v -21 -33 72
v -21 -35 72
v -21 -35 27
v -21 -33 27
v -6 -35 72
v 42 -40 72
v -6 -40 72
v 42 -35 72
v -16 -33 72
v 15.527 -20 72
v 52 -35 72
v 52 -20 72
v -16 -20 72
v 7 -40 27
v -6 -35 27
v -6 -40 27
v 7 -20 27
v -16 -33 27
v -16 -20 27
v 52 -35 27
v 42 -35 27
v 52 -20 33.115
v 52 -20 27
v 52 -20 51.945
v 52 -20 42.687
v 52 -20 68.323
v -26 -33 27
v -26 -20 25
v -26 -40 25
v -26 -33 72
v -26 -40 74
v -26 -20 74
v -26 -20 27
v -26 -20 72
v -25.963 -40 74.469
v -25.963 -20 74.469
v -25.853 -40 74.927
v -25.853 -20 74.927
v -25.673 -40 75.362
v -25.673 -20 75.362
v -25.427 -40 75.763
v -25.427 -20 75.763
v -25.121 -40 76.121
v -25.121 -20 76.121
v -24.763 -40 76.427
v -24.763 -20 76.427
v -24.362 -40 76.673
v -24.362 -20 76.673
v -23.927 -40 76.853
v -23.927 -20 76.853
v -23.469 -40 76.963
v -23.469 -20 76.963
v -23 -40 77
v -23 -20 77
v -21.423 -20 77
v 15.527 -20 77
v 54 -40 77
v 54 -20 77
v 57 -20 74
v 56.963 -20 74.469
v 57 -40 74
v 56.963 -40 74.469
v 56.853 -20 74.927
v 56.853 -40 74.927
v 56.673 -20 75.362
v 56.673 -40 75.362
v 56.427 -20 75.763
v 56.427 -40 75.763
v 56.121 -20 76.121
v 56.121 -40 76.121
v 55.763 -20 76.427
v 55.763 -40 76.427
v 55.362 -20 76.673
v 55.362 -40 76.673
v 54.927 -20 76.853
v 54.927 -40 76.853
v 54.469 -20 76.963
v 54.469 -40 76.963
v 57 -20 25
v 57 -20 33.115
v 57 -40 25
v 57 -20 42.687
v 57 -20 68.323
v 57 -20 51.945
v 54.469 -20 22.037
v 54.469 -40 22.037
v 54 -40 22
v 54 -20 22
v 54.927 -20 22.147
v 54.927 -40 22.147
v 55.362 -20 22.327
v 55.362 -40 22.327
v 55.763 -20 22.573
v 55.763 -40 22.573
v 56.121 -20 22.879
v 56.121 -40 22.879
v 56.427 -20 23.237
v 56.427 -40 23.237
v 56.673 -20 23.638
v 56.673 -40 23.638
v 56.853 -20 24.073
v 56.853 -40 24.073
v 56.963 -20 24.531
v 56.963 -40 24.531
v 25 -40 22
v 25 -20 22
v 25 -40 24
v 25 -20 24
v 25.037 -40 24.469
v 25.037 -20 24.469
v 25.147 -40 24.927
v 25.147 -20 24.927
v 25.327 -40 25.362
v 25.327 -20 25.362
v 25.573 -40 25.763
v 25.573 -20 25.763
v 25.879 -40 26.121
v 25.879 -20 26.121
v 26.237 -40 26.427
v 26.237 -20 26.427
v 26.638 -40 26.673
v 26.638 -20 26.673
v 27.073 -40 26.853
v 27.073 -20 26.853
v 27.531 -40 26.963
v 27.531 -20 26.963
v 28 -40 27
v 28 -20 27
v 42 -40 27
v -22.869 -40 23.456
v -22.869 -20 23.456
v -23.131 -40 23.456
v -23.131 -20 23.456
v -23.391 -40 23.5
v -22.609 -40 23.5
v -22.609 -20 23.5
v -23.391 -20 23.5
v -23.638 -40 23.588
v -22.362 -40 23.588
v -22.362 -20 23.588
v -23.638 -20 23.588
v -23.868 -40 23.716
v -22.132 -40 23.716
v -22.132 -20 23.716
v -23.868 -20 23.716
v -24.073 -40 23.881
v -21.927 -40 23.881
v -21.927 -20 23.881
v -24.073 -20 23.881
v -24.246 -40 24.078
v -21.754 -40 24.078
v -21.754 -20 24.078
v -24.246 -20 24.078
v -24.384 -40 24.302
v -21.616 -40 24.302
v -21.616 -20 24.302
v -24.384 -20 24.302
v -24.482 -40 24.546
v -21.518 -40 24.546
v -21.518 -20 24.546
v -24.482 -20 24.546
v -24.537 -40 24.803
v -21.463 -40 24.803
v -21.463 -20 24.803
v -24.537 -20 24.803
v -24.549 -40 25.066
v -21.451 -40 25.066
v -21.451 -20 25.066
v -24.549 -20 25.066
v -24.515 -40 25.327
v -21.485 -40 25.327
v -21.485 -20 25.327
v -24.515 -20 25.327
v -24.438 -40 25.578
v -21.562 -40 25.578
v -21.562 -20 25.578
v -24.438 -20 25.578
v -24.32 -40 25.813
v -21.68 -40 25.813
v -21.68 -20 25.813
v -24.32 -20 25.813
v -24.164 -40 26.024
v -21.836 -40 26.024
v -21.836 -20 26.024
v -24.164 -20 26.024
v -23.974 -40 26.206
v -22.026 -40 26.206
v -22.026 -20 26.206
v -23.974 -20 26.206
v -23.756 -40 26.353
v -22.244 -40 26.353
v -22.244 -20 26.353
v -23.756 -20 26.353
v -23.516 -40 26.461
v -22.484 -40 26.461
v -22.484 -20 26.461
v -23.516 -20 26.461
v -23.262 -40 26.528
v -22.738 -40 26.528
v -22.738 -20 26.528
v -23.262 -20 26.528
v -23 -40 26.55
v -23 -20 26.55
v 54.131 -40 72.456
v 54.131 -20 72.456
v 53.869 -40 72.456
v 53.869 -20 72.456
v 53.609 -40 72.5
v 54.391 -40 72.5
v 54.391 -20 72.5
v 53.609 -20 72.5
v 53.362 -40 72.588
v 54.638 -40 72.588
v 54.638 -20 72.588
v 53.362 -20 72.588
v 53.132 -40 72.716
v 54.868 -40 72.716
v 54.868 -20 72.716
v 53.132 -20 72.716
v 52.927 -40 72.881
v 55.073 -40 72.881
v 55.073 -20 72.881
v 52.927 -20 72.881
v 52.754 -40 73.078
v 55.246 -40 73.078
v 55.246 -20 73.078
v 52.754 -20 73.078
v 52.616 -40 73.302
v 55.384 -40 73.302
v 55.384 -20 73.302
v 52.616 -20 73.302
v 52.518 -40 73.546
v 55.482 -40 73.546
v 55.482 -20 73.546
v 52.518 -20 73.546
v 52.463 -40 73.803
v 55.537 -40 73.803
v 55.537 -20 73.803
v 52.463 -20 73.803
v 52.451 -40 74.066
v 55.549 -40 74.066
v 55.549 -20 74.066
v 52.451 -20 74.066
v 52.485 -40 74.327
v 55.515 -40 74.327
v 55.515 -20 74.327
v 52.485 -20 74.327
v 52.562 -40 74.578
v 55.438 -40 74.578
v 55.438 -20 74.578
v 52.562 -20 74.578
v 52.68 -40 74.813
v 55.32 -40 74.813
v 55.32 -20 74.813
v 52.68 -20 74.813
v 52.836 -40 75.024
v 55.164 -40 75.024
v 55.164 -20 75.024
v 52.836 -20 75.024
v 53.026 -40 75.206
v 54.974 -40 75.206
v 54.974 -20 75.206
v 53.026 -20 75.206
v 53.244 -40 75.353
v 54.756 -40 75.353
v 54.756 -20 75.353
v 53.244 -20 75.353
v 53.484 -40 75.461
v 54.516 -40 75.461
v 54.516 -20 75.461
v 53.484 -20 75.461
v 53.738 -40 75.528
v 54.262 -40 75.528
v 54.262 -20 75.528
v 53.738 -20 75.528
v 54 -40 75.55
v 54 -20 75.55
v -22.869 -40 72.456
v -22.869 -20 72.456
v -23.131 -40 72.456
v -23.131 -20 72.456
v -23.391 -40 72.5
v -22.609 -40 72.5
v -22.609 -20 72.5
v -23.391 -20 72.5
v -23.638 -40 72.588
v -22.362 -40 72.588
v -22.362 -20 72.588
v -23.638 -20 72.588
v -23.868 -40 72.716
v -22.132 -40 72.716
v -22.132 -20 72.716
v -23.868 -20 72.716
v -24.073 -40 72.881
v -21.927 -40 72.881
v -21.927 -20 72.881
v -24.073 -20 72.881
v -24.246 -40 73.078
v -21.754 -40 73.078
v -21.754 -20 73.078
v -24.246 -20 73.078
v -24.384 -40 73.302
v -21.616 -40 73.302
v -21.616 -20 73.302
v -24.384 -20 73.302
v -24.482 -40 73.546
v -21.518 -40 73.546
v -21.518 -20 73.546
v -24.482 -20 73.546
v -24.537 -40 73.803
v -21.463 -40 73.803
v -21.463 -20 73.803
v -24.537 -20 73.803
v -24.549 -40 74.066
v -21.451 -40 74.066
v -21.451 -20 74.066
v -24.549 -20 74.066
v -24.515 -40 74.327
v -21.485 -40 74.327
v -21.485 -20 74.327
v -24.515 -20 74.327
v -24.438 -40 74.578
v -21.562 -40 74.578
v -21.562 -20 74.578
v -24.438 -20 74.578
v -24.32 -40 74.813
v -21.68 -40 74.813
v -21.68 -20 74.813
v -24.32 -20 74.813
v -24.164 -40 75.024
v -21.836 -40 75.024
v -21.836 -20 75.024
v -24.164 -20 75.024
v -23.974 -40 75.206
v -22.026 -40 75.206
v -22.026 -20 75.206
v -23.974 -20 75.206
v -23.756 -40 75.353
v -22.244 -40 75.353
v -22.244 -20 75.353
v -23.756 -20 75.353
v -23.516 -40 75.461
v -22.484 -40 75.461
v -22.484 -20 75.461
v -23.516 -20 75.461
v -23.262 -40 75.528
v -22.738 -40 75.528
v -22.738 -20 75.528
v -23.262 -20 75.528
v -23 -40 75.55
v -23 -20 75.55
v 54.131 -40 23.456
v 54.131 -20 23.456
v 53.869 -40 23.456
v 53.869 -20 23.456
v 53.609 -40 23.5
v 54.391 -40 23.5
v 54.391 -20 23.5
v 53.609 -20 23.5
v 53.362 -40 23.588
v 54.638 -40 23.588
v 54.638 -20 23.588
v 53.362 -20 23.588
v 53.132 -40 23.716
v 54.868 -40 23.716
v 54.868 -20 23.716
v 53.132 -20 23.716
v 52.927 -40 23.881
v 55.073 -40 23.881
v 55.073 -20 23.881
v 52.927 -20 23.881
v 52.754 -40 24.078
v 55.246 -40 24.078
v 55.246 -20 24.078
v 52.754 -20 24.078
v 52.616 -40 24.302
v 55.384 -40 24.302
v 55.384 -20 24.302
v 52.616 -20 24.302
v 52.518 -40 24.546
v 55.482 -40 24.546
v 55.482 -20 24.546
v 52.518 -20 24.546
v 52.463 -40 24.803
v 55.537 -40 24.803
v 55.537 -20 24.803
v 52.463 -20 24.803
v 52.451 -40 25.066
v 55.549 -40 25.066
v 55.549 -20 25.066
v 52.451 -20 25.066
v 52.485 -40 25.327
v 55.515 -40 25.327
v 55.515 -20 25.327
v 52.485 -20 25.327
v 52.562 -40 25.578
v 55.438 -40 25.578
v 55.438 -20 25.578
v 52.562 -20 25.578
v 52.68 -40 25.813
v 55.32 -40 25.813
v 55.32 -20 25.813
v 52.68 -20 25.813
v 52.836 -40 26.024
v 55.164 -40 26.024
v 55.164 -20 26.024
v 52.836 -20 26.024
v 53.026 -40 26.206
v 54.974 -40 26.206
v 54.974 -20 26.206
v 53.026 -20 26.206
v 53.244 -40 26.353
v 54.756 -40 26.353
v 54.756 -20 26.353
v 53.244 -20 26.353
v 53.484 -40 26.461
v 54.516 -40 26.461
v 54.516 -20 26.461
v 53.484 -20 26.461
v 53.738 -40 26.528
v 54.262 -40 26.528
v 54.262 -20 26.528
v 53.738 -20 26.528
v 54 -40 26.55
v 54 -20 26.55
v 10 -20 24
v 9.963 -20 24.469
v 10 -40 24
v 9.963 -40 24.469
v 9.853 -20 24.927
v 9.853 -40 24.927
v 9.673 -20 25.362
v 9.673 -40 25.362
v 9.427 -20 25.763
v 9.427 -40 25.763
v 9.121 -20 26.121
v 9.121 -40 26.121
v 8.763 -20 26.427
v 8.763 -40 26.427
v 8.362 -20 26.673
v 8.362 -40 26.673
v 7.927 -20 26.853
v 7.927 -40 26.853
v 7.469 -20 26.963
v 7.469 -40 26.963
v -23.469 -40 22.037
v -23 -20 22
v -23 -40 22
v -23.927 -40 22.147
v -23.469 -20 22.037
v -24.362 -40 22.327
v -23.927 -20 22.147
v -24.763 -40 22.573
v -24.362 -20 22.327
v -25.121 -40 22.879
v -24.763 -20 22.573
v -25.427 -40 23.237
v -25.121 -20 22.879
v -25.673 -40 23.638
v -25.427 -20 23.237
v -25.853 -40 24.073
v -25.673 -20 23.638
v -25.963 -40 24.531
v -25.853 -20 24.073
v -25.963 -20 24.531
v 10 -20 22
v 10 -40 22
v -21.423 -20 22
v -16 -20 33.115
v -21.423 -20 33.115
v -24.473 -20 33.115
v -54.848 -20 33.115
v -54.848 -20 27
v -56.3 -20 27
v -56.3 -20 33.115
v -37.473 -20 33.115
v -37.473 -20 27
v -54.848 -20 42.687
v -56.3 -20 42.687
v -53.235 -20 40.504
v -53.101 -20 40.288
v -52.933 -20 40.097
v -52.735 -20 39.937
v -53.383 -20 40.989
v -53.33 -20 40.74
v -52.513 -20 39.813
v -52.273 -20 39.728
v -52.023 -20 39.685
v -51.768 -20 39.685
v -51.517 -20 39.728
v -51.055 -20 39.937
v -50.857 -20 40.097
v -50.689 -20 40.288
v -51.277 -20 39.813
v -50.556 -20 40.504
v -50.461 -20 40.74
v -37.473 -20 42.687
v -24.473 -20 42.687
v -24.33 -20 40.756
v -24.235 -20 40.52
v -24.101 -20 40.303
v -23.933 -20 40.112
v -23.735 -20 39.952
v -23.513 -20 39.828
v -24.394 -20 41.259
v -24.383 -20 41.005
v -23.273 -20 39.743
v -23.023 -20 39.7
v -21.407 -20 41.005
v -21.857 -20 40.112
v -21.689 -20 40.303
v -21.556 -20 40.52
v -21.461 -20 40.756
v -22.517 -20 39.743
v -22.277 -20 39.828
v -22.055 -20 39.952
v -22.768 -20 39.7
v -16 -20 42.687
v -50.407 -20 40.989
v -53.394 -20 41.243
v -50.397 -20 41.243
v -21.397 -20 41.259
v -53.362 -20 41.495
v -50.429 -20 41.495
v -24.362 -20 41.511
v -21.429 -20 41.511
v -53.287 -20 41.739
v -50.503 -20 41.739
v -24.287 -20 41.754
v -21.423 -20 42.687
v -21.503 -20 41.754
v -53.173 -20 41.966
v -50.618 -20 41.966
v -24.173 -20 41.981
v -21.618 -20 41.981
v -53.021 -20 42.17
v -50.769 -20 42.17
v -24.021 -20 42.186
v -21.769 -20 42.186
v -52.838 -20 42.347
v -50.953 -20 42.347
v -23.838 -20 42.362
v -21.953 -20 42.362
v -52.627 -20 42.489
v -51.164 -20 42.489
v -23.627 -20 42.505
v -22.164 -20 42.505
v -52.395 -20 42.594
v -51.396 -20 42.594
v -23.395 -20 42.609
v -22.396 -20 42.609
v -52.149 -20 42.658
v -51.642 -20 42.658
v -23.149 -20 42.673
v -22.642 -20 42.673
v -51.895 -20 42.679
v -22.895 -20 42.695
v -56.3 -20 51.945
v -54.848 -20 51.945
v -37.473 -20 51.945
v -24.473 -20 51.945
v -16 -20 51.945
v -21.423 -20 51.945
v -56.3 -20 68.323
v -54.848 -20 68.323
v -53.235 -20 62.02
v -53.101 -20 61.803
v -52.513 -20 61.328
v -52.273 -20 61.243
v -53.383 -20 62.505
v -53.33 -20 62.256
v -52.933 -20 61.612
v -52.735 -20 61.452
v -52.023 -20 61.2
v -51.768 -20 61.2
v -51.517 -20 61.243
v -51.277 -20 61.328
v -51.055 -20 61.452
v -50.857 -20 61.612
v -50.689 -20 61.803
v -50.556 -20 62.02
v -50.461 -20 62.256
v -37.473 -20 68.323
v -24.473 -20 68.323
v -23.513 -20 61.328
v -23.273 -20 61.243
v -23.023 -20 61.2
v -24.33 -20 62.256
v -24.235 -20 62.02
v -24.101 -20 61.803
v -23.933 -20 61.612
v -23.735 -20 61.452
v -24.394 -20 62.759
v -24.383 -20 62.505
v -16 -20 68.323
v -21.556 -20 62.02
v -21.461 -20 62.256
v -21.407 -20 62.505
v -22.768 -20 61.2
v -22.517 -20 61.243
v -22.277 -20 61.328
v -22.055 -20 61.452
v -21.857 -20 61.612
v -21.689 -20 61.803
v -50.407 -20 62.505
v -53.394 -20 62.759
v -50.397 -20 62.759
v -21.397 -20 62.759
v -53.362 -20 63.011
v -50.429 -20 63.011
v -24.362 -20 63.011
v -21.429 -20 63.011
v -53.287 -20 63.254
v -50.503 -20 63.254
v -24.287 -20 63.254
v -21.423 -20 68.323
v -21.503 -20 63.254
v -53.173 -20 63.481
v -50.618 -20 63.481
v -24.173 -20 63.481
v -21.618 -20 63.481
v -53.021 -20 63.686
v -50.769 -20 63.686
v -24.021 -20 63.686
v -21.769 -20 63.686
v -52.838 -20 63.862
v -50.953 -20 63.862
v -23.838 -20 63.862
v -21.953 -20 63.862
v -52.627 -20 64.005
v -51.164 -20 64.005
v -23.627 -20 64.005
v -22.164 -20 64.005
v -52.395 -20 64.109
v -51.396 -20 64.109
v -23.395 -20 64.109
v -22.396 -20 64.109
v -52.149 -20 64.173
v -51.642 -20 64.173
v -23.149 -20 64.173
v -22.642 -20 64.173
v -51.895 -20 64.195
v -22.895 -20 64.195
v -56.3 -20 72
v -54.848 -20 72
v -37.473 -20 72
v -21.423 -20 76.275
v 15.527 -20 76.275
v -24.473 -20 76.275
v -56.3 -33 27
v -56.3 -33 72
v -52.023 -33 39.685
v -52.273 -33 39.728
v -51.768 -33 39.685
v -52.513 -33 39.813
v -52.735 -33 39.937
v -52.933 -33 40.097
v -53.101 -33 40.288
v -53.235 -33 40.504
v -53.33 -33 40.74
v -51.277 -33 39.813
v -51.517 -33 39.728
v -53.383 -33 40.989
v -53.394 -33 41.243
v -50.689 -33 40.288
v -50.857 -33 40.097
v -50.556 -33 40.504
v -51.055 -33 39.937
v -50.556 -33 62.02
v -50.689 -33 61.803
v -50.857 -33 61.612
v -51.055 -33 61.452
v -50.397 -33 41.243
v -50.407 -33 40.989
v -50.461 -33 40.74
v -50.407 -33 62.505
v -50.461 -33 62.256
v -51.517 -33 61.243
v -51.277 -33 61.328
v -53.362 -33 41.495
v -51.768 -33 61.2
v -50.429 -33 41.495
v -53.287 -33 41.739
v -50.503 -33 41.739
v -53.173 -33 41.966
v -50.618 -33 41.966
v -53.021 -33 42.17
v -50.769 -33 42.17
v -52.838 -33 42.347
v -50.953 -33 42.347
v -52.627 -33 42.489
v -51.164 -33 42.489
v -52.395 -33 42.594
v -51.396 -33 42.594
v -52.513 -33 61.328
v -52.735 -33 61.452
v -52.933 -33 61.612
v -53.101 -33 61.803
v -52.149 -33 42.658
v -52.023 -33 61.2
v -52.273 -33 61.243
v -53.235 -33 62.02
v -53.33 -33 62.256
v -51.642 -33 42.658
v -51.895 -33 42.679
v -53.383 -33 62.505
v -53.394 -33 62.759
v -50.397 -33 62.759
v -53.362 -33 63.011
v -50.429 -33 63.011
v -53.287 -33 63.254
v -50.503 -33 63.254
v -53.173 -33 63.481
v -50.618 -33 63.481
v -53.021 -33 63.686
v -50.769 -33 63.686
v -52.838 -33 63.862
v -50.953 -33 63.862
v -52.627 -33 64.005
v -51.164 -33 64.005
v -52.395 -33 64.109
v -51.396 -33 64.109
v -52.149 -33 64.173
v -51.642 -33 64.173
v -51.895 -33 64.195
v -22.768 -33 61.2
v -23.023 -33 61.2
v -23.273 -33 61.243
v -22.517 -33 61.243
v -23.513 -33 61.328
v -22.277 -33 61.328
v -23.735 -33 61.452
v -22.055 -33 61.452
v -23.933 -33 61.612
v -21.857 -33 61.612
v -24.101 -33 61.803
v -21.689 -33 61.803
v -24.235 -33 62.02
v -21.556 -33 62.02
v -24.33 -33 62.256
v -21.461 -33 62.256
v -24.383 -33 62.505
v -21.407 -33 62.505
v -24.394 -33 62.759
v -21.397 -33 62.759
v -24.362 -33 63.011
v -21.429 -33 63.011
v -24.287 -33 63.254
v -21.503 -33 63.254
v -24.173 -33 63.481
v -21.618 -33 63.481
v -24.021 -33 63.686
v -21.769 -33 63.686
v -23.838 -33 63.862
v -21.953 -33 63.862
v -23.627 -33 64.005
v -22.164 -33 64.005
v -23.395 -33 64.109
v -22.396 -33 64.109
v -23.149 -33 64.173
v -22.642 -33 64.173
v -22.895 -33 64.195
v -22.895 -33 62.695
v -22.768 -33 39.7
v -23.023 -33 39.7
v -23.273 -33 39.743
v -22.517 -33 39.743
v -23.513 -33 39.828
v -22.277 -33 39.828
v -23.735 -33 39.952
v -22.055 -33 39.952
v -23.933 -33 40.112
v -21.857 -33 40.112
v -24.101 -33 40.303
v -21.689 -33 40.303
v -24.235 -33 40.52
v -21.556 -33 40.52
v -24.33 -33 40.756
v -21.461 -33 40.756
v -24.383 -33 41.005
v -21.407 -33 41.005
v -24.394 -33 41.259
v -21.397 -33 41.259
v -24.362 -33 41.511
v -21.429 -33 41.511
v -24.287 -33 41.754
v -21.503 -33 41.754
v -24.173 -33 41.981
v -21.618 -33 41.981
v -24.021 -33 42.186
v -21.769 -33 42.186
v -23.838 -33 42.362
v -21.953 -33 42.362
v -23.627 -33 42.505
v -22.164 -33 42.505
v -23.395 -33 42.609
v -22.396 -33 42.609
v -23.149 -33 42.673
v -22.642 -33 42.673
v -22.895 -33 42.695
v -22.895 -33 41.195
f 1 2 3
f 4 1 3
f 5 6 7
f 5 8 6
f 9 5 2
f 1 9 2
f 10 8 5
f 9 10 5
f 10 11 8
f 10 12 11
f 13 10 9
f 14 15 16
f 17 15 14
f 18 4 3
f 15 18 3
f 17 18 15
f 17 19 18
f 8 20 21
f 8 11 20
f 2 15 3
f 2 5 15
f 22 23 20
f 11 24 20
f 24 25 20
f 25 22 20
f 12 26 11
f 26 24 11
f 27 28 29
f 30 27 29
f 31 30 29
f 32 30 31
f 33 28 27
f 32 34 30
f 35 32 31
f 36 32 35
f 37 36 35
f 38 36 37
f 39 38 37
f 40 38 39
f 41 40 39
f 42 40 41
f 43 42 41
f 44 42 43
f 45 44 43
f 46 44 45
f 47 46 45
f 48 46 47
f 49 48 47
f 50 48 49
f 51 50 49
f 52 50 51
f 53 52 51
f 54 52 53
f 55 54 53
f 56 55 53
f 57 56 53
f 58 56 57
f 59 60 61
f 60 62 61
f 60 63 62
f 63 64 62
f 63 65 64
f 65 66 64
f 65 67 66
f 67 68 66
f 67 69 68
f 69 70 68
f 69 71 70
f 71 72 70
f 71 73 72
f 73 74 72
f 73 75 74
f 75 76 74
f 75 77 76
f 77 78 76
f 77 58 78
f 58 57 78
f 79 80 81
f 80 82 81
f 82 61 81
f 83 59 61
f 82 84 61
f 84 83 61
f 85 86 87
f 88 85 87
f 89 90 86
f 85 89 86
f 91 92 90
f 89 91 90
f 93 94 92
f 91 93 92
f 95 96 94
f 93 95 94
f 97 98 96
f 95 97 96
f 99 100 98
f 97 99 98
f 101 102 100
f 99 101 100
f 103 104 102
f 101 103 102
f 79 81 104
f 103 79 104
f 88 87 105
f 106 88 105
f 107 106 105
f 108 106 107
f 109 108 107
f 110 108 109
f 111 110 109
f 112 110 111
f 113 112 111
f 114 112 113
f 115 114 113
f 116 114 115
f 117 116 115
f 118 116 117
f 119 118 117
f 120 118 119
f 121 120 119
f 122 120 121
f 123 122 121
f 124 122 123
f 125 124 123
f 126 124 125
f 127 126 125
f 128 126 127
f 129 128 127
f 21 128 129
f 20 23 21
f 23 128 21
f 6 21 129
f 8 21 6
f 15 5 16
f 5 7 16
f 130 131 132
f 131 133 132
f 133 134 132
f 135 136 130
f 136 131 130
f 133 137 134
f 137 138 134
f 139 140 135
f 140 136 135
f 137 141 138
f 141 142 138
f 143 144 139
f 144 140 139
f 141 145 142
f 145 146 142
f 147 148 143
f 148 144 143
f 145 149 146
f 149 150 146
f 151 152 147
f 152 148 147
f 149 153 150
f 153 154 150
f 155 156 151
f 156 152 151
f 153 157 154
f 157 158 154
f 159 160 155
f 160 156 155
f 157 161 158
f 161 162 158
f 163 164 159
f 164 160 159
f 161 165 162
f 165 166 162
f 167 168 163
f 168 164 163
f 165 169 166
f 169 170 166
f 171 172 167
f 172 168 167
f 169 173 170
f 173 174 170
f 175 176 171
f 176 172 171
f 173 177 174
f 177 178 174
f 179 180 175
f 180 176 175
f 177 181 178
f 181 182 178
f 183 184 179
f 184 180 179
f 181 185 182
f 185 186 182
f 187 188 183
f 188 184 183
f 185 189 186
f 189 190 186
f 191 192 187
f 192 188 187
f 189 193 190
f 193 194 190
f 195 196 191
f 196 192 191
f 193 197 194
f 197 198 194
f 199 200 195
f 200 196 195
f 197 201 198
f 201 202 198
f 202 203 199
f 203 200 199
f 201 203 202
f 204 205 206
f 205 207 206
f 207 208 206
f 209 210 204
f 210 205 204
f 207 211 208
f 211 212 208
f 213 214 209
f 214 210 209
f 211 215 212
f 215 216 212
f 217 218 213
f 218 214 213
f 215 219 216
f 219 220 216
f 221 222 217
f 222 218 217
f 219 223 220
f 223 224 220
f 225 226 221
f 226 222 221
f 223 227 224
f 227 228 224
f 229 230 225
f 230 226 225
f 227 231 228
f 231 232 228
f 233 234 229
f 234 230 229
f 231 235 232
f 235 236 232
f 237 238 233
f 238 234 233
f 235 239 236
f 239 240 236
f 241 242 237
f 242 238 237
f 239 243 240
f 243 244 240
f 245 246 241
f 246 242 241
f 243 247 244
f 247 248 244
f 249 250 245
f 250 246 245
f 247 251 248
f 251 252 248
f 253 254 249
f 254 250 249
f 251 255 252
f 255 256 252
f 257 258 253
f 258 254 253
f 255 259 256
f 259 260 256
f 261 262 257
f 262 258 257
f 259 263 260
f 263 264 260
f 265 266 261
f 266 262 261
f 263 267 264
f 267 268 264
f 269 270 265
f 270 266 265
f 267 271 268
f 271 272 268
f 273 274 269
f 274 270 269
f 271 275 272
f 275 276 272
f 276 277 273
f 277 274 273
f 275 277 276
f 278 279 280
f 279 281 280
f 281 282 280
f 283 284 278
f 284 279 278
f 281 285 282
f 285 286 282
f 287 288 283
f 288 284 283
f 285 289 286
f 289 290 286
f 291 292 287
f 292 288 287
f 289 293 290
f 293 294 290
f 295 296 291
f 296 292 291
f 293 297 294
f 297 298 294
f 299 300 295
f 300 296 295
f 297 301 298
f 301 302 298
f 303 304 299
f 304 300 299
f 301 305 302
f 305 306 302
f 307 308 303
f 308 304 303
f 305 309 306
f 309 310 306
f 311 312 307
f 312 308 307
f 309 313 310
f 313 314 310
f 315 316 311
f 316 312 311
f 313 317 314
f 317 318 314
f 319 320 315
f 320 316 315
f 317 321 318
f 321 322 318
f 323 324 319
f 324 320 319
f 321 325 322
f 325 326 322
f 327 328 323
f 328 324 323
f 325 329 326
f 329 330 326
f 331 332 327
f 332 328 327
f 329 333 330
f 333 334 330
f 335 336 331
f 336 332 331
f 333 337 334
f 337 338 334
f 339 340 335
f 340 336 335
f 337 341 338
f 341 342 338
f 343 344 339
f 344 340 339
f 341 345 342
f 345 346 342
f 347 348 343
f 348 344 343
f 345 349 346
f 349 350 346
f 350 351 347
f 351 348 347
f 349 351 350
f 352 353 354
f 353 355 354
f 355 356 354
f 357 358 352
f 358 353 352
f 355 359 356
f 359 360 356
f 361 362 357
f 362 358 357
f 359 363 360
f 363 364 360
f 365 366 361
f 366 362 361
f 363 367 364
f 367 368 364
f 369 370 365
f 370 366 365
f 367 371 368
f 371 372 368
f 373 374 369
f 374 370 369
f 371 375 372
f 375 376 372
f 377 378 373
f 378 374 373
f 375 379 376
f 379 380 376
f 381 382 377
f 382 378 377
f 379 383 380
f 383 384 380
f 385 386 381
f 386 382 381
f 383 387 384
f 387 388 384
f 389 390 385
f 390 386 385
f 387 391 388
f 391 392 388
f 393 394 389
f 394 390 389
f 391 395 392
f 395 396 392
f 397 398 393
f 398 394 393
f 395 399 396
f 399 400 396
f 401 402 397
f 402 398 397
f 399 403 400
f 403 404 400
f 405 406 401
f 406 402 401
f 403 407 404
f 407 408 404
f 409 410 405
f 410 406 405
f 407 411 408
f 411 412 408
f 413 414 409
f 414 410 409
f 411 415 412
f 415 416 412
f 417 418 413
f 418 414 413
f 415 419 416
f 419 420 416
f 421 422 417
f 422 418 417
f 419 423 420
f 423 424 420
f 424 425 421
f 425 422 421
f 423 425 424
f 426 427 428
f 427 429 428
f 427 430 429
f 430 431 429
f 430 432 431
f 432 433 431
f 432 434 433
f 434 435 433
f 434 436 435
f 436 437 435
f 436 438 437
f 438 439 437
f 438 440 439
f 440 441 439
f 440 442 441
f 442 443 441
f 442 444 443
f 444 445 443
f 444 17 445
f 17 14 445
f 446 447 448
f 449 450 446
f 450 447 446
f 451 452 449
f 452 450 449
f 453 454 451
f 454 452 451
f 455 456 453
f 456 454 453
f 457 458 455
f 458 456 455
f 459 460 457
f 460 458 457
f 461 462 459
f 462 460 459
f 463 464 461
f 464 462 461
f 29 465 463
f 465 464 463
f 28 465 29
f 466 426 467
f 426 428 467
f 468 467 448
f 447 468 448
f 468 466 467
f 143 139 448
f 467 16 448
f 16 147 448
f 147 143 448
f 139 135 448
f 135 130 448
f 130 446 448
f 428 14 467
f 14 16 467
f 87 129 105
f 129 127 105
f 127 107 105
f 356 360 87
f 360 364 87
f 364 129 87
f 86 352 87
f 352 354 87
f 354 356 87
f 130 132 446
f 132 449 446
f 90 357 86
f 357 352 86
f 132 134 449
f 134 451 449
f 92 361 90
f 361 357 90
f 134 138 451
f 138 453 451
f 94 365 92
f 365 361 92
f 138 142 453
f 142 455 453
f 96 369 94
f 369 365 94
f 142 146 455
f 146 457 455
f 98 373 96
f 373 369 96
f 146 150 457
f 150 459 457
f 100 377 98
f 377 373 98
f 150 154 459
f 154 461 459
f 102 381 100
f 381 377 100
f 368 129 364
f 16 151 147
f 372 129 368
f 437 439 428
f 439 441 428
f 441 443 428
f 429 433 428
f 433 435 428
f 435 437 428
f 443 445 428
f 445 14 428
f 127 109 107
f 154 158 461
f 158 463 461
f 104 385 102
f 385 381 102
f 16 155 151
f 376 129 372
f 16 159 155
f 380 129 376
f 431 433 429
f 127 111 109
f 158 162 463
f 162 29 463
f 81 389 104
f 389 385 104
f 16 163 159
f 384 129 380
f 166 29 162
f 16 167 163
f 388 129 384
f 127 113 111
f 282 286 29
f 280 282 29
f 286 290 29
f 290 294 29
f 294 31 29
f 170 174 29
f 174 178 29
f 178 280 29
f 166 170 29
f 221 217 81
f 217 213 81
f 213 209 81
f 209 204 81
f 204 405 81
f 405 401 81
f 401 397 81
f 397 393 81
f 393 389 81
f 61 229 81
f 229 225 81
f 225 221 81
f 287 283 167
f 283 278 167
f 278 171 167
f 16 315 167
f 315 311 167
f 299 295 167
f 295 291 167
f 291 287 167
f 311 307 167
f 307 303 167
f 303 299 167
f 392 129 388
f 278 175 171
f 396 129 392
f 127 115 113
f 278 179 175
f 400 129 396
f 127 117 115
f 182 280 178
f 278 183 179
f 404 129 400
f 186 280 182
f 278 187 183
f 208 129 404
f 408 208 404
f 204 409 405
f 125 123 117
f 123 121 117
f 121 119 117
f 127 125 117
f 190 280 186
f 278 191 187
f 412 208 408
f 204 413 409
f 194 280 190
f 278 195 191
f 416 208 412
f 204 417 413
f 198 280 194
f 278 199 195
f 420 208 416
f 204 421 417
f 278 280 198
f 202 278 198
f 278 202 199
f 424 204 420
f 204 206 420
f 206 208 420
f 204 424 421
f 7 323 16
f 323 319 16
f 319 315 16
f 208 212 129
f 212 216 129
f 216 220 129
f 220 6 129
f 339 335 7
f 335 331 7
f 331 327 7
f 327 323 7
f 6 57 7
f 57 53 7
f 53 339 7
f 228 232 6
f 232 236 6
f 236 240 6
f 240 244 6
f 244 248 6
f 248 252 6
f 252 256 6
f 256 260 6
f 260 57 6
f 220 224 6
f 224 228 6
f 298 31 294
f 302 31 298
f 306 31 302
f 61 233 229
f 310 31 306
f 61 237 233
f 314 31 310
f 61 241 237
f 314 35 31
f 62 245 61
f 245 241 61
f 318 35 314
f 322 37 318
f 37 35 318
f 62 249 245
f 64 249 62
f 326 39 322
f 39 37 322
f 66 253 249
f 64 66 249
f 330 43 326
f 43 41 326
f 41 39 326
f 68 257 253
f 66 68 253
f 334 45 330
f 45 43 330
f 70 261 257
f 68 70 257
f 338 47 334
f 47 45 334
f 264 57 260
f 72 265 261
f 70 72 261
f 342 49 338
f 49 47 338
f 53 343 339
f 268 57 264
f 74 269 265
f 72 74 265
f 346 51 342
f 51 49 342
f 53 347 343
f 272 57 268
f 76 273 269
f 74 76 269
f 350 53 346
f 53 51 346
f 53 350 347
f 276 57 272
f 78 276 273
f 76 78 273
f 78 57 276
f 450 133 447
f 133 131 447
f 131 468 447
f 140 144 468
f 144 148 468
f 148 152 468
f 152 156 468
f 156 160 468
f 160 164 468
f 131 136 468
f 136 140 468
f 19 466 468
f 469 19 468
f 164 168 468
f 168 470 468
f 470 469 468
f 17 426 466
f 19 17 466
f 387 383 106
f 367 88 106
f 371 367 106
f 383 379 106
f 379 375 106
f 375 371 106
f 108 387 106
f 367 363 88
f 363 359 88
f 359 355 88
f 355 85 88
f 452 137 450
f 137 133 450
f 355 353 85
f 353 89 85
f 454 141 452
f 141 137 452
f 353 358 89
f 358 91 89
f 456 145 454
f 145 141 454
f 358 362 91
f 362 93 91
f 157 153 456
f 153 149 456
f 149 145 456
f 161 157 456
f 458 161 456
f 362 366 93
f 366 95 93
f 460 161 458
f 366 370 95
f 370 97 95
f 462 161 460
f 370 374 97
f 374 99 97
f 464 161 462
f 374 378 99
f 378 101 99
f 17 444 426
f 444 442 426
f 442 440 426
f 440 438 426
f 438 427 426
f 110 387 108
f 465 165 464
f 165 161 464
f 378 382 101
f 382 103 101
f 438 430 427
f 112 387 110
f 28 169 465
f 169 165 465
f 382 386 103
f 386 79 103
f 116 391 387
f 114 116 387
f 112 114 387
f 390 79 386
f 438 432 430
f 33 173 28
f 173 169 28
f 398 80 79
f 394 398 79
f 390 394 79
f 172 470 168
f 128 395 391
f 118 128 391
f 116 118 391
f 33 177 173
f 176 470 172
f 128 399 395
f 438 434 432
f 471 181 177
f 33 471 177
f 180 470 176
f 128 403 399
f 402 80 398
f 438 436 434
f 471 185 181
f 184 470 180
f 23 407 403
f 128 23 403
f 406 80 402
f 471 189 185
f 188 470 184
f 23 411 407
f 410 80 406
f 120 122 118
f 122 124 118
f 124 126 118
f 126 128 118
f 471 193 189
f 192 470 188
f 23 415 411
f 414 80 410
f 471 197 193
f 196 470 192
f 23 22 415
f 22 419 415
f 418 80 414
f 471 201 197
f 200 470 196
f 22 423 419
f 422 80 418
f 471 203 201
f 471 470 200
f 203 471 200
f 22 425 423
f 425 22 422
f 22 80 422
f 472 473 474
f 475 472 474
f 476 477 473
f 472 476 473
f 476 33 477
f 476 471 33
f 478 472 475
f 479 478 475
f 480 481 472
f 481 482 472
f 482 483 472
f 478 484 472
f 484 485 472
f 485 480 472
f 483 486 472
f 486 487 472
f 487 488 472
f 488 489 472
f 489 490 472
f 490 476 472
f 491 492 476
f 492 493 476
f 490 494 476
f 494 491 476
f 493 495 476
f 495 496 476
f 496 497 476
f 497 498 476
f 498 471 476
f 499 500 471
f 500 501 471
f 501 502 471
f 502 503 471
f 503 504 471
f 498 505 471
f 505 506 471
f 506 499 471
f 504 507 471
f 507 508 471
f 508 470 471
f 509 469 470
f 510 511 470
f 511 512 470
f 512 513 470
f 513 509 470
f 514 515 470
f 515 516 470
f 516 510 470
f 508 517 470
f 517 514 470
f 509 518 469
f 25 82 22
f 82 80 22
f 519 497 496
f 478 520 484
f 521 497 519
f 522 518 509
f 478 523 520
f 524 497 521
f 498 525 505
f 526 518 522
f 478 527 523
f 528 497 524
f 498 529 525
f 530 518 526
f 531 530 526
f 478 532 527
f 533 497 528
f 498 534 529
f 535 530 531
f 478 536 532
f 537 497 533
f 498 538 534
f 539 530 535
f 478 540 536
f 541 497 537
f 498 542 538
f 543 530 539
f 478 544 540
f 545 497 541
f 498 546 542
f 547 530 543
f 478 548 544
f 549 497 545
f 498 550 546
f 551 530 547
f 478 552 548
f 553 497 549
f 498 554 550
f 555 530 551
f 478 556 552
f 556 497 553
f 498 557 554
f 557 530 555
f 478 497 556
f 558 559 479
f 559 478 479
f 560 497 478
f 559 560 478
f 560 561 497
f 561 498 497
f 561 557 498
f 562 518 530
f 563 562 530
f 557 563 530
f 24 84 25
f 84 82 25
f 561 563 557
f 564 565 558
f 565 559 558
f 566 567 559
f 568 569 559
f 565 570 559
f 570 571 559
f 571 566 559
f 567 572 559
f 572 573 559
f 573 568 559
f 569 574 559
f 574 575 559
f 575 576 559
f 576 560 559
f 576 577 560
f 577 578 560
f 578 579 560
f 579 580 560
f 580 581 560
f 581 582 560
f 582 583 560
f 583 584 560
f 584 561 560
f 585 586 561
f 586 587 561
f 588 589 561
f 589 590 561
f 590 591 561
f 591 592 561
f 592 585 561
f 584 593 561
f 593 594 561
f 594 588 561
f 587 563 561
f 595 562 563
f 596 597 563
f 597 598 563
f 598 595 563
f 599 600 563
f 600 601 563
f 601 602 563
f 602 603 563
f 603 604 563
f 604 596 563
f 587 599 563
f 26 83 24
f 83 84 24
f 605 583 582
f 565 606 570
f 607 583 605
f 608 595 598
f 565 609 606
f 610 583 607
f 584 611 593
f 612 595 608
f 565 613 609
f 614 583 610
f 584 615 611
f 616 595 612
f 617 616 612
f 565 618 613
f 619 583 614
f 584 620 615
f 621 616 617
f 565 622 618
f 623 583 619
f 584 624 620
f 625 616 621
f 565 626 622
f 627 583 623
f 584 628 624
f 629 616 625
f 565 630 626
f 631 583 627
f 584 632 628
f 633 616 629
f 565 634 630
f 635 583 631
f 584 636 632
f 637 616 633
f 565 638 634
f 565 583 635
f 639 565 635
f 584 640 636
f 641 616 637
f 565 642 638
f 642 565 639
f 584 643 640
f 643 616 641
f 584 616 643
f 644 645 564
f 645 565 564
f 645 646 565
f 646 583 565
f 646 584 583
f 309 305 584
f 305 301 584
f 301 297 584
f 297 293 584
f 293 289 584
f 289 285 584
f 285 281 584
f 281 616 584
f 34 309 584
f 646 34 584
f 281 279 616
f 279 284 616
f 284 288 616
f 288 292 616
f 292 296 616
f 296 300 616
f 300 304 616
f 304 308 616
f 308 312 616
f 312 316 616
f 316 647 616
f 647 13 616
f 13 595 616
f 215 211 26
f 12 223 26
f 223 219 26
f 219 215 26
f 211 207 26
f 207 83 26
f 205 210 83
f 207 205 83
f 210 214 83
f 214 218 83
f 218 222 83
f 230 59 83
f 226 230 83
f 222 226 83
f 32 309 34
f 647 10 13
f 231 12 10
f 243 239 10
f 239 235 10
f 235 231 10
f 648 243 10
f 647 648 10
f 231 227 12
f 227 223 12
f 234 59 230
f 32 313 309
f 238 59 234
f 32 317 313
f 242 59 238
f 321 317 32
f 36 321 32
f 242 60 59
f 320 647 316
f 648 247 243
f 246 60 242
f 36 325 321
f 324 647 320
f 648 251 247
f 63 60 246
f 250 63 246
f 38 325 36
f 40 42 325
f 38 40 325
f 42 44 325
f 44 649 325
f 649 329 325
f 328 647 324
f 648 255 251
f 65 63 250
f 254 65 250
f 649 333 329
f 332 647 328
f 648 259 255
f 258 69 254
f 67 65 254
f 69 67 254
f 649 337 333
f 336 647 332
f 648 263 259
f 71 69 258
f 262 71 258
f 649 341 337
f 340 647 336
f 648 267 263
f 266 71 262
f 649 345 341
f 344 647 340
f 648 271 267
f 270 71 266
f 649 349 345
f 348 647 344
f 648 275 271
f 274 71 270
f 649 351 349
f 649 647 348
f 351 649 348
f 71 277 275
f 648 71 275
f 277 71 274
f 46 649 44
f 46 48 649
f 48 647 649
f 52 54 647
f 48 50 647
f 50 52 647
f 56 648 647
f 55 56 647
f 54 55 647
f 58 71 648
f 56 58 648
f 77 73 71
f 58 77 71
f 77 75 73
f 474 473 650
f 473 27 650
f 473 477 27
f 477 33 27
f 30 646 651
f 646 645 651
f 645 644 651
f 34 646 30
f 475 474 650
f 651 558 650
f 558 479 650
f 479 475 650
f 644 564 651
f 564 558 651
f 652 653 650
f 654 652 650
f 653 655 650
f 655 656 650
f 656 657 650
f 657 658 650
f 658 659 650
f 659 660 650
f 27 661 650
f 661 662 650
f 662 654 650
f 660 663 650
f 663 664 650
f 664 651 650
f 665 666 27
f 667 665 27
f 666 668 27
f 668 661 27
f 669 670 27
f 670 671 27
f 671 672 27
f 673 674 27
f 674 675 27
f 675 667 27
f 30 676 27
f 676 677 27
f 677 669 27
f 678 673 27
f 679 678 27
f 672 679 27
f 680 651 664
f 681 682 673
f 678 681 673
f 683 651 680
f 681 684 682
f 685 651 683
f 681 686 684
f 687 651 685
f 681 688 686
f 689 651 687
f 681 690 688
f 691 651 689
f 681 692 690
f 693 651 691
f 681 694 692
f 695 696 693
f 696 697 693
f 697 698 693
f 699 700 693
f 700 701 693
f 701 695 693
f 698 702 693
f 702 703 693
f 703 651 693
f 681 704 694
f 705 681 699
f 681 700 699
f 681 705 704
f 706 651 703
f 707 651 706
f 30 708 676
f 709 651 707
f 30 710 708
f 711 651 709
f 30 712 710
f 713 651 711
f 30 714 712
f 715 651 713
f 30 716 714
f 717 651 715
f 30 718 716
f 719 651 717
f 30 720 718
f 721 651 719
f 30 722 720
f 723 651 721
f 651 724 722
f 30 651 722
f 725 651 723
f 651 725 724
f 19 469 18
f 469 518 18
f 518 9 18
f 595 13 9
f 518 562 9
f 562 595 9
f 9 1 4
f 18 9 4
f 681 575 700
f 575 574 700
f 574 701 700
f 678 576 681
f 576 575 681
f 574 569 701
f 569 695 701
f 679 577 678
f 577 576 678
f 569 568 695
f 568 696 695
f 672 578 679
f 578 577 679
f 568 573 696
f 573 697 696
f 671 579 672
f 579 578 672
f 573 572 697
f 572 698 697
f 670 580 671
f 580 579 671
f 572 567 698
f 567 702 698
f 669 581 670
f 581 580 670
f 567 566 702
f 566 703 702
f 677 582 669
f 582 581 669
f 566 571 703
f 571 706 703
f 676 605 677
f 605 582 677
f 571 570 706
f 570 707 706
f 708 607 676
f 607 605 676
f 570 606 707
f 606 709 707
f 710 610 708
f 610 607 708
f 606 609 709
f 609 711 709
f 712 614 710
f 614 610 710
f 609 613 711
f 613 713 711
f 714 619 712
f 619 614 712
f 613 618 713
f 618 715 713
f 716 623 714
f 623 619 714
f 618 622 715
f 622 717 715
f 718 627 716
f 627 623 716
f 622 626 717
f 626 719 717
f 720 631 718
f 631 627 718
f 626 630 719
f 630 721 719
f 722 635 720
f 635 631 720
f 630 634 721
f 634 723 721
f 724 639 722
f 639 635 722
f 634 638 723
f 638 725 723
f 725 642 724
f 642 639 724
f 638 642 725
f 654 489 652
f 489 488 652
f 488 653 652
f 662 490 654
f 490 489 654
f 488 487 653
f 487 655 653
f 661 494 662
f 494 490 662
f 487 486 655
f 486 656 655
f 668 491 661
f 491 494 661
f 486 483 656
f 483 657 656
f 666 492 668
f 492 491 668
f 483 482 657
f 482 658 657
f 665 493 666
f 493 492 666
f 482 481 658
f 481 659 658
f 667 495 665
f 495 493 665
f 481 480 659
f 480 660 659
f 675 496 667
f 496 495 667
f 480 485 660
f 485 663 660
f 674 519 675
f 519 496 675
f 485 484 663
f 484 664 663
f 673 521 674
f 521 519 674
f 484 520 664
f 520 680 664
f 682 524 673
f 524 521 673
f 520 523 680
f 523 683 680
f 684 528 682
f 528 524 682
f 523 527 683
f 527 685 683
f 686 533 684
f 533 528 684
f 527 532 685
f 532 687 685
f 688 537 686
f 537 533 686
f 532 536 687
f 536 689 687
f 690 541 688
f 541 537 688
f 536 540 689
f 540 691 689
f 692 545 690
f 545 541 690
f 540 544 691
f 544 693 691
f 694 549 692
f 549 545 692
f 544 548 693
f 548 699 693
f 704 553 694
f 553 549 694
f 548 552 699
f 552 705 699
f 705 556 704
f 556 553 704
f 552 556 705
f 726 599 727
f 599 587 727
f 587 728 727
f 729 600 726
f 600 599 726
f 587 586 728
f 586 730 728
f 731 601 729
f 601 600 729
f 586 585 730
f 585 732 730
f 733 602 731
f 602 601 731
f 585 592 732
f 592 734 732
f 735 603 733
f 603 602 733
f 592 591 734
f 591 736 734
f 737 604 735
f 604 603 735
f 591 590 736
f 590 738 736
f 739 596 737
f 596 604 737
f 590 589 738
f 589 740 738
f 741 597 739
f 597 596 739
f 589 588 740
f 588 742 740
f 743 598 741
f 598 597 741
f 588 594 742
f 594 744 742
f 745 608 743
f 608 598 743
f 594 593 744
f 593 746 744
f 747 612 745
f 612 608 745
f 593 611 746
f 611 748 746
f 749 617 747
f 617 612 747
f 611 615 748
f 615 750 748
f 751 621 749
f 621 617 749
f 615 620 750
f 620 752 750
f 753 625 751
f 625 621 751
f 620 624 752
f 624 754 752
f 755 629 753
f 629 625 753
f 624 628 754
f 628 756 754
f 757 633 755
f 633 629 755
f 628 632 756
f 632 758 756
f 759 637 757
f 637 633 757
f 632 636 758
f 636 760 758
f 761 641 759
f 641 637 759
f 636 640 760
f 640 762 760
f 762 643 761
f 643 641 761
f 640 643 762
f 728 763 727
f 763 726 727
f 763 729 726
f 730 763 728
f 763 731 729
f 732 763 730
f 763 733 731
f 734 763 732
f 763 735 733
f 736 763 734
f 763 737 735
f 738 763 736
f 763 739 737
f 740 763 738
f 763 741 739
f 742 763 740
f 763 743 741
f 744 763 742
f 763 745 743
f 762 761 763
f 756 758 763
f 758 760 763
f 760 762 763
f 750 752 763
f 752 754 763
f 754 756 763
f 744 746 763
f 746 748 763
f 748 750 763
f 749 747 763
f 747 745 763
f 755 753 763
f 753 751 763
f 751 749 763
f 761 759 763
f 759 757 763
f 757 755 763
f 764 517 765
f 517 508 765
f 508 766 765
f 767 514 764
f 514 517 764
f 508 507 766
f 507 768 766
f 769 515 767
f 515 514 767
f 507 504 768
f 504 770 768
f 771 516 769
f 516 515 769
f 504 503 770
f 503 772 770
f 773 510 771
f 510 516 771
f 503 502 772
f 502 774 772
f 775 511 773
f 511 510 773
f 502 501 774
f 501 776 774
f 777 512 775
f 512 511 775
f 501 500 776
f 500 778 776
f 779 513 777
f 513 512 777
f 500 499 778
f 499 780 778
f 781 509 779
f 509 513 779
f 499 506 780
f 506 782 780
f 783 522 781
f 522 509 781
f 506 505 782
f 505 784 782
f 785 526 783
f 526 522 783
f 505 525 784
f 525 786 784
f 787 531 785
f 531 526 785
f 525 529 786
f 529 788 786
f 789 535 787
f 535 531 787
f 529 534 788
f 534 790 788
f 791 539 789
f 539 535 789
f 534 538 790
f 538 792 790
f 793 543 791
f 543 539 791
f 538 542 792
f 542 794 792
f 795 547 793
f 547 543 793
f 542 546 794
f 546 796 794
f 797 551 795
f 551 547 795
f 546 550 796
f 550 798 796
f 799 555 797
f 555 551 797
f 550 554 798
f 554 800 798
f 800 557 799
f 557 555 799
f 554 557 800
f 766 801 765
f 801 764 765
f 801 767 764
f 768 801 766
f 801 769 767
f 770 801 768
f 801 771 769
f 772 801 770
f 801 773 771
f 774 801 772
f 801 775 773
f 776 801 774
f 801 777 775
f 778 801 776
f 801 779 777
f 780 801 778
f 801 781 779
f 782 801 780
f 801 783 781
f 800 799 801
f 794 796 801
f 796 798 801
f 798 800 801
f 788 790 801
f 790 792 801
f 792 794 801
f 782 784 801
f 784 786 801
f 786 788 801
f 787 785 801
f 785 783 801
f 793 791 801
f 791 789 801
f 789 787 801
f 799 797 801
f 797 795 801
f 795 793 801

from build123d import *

# Parameters (mm, degrees)
EXTRUDE_1_DEPTH             = 10
EXTRUDE_2_REACH             = 34.619
SKETCH_2_R                  = 10
EXTRUDE_2_DIRECTION_2_DEPTH = 2
SKETCH_6_R                  = 1.65
SKETCH_6_W                  = 14.704506527
SKETCH_6_H                  = 8.520368268
CUT_EXTRUDE_2_DEPTH         = 43.983979574
FILLET_1_R                  = 1
FILLET_2_R                  = 0.5
EXTRUDE_3_DEPTH             = 8
EXTRUDE_4_DEPTH             = 55
SKETCH_9_W                  = 73
SKETCH_9_H                  = 45
CUT_EXTRUDE_3_DEPTH         = 13
SKETCH_10_W                 = 15
SKETCH_10_H                 = 20
CUT_EXTRUDE_4_DEPTH         = 13
SKETCH_11_W                 = 73
SKETCH_11_H                 = 45
CUT_EXTRUDE_6_DEPTH         = 13
SKETCH_12_W                 = 15
SKETCH_12_H                 = 45
SKETCH_12_W_2               = 10
EXTRUDE_5_DEPTH             = 5
FILLET_3_R                  = 3
SKETCH_14_R                 = 1.55
CUT_EXTRUDE_7_DEPTH         = 102.004950374
SKETCH_15_W                 = 8
SKETCH_15_H                 = 22
CUT_EXTRUDE_8_DEPTH         = 20
SKETCH_18_W                 = 5
SKETCH_18_H                 = 45
SKETCH_18_W_2               = 30.3
EXTRUDE_6_DEPTH             = 13
SKETCH_20_R                 = 1.5
CUT_EXTRUDE_9_DEPTH         = 13


with BuildPart() as part:
    # 草图1 → 凸台-拉伸1 (new, symmetric)
    with BuildSketch(Plane.XY):
        with BuildLine():
            Line((-1.15, 3.987480407), (-1.15, 12))
            Line((-1.15, 12), (-4.15, 12))
            Line((-4.15, 12), (-4.15, 4.333301282))
            ThreePointArc((-4.15, 4.333301282), (-4.784308974, 3.620826928), (-5.297685557, 2.816829377))
            Line((-5.297685557, 2.816829377), (-8, -2.265484914))
            Line((-8, -2.265484914), (-8, -30))
            Line((-8, -30), (0, -30))
            Line((0, -30), (0, -8.485281374))
            Line((0, -8.485281374), (4.242640687, -4.242640687))
            ThreePointArc((4.242640687, -4.242640687), (5.999649956, 0.064810571), (4.15, 4.333301282))
            Line((4.15, 4.333301282), (4.15, 12))
            Line((4.15, 12), (1.15, 12))
            Line((1.15, 12), (1.15, 3.987480407))
            ThreePointArc((1.15, 3.987480407), (0, -4.15), (-1.15, 3.987480407))
        make_face()
    extrude(amount=EXTRUDE_1_DEPTH, both=True)

    # 凸台-拉伸2: up to this face of the body (flat: up to its plane)
    extrude_2_end = Plane(part.part.faces().sort_by_distance((-8, -16.132742457, 0))[0])
    # 草图2 → 凸台-拉伸2 (add, up to the picked face)
    with BuildSketch(Plane(origin=(0, 0, 0), x_dir=(0, 0, -1), z_dir=(1, 0, 0)), mode=Mode.PRIVATE) as extrude_2_sk1:
        with Locations((0, -30)):
            Circle(SKETCH_2_R)
    extrude_2_tool1 = split(extrude(extrude_2_sk1.sketch, amount=-EXTRUDE_2_REACH, mode=Mode.PRIVATE), bisect_by=extrude_2_end, keep=Keep.BOTH, mode=Mode.PRIVATE)
    add(extrude_2_tool1.solids().sort_by(Axis((0, -30, 0), (-1, 0, 0)))[0])

    # 草图2 → 凸台-拉伸2 direction 2 (add)
    with BuildSketch(Plane(origin=(0, 0, 0), x_dir=(0, 0, -1), z_dir=(1, 0, 0))):
        with Locations((0, -30)):
            Circle(SKETCH_2_R)
    extrude(amount=EXTRUDE_2_DIRECTION_2_DEPTH)

    # 草图6 → 切除-拉伸2 (cut, through all)
    with BuildSketch(Plane(origin=(4.15, 0, 0), x_dir=(0, 0, -1), z_dir=(1, 0, 0))):
        with Locations(Location((0, 9.5, 0), (0, 0, 90))):
            Circle(SKETCH_6_R)
        with Locations((-12.852253263, 11.760184134)):
            Rectangle(SKETCH_6_W, SKETCH_6_H)
        with Locations((12.852253263, 11.760184134)):
            Rectangle(SKETCH_6_W, SKETCH_6_H)
    extrude(amount=-CUT_EXTRUDE_2_DEPTH, mode=Mode.SUBTRACT)

    # 圆角1
    fillet_1_edges = [part.edges().sort_by_distance(p)[0] for p in [
        (2.65, 7.5, -10),
        (-2.65, 7.5, -10),
        (2.65, 7.5, 10),
        (-2.65, 7.5, 10),
        (2.65, 12, 5.5),
        (-2.65, 12, 5.5),
        (2.65, 12, -5.5),
        (-2.65, 12, -5.5),
    ]]
    fillet(fillet_1_edges, radius=FILLET_1_R)

    # 圆角2
    fillet_2_edges = [part.edges().sort_by_distance(p)[0] for p in [
        (-2.65, 7.5, 5.5),
        (2.65, 7.5, 5.5),
        (2.65, 7.5, -5.5),
        (-2.65, 7.5, -5.5),
    ]]
    fillet(fillet_2_edges, radius=FILLET_2_R)

    # 草图7 → 凸台-拉伸3 (add)
    with BuildSketch(Plane(origin=(2, 0, 0), x_dir=(0, 0, -1), z_dir=(1, 0, 0))):
        with BuildLine():
            Line((0, -20), (-22, -20))
            Line((-22, -20), (-22, -40))
            Line((-22, -40), (0, -40))
            ThreePointArc((0, -40), (10, -30), (0, -20))
        make_face()
    extrude(amount=EXTRUDE_3_DEPTH)

    # 草图8 → 凸台-拉伸4 (add)
    with BuildSketch(Plane.XY.offset(22)):
        Polygon((10, -20), (-26, -20), (-26, -40), (2, -40), (57, -40), (57, -20), align=None)
    extrude(amount=EXTRUDE_4_DEPTH)

    # 草图9 → 切除-拉伸3 (cut)
    with BuildSketch(Plane(origin=(0, -20, 0), x_dir=(1, 0, 0), z_dir=(0, 1, 0))):
        with Locations((15.5, -49.5)):
            Rectangle(SKETCH_9_W, SKETCH_9_H)
    extrude(amount=-CUT_EXTRUDE_3_DEPTH, mode=Mode.SUBTRACT)

    # 草图10 → 切除-拉伸4 (cut)
    with BuildSketch(Plane(origin=(0, 0, 22), x_dir=(-1, 0, 0), z_dir=(0, 0, -1))):
        with Locations((-17.5, -30)):
            Rectangle(SKETCH_10_W, SKETCH_10_H)
    extrude(amount=-CUT_EXTRUDE_4_DEPTH, mode=Mode.SUBTRACT)

    # 草图11 → 切除-拉伸6 (cut)
    with BuildSketch(Plane(origin=(0, -33, 0), x_dir=(1, 0, 0), z_dir=(0, 1, 0))):
        with Locations((15.5, -49.5)):
            Rectangle(SKETCH_11_W, SKETCH_11_H)
    extrude(amount=-CUT_EXTRUDE_6_DEPTH, mode=Mode.SUBTRACT)

    # 草图12 → 凸台-拉伸5 (add)
    with BuildSketch(Plane.XZ.offset(40)):
        with Locations((-13.5, 49.5)):
            Rectangle(SKETCH_12_W, SKETCH_12_H)
        with Locations((47, 49.5)):
            Rectangle(SKETCH_12_W_2, SKETCH_12_H)
    extrude(amount=-EXTRUDE_5_DEPTH)

    # 圆角3
    fillet_3_edges = [part.edges().sort_by_distance(p)[0] for p in [
        (-26, -30, 22),
        (57, -30, 22),
        (-26, -30, 77),
        (57, -30, 77),
        (10, -30, 27),
        (25, -30, 27),
    ]]
    fillet(fillet_3_edges, radius=FILLET_3_R)

    # 草图14 → 切除-拉伸7 (cut, through all)
    with BuildSketch(Plane(origin=(0, -20, 0), x_dir=(1, 0, 0), z_dir=(0, 1, 0))):
        with Locations(Location((-23, -25, 0), (0, 0, 270))):
            Circle(SKETCH_14_R)
        with Locations(Location((54, -25, 0), (0, 0, 270))):
            Circle(SKETCH_14_R)
        with Locations(Location((-23, -74, 0), (0, 0, 270))):
            Circle(SKETCH_14_R)
        with Locations(Location((54, -74, 0), (0, 0, 270))):
            Circle(SKETCH_14_R)
    extrude(amount=-CUT_EXTRUDE_7_DEPTH, mode=Mode.SUBTRACT)

    # 草图15 → 切除-拉伸8 (cut)
    with BuildSketch(Plane(origin=(0, -20, 0), x_dir=(1, 0, 0), z_dir=(0, 1, 0))):
        with Locations((6, -11)):
            Rectangle(SKETCH_15_W, SKETCH_15_H)
    extrude(amount=-CUT_EXTRUDE_8_DEPTH, mode=Mode.SUBTRACT)


with BuildPart() as body_2:
    # of the pieces the cut leaves, the one that is kept (cut_extrude_8_keep)
    add(part.part.solids().sort_by_distance((-26, -20, 25))[0])

    # 草图18 → 凸台-拉伸6 (add)
    with BuildSketch(Plane(origin=(0, -20, 0), x_dir=(1, 0, 0), z_dir=(0, 1, 0))):
        with Locations((-18.5, -49.5)):
            Rectangle(SKETCH_18_W, SKETCH_18_H)
        with Locations((-41.15, -49.5)):
            Rectangle(SKETCH_18_W_2, SKETCH_18_H)
    extrude(amount=-EXTRUDE_6_DEPTH)

    # 草图20 → 切除-拉伸9 (cut)
    with BuildSketch(Plane(origin=(0, -20, 0), x_dir=(1, 0, 0), z_dir=(0, 1, 0))):
        with Locations(Location((-22.89532608, -62.69503523, 0), (0, 0, 270))):
            Circle(SKETCH_20_R)
        with Locations(Location((-51.895321909, -41.179481559, 0), (0, 0, 270))):
            Circle(SKETCH_20_R)
        with Locations((-21.949220364, 0)):
            Circle(SKETCH_20_R)
        with Locations(Location((-51.895321909, -62.69503523, 0), (0, 0, 270))):
            Circle(SKETCH_20_R)
        with Locations(Location((-22.89532608, -41.19503523, 0), (0, 0, 270))):
            Circle(SKETCH_20_R)
    extrude(amount=-CUT_EXTRUDE_9_DEPTH, mode=Mode.SUBTRACT)


solid = body_2.part
